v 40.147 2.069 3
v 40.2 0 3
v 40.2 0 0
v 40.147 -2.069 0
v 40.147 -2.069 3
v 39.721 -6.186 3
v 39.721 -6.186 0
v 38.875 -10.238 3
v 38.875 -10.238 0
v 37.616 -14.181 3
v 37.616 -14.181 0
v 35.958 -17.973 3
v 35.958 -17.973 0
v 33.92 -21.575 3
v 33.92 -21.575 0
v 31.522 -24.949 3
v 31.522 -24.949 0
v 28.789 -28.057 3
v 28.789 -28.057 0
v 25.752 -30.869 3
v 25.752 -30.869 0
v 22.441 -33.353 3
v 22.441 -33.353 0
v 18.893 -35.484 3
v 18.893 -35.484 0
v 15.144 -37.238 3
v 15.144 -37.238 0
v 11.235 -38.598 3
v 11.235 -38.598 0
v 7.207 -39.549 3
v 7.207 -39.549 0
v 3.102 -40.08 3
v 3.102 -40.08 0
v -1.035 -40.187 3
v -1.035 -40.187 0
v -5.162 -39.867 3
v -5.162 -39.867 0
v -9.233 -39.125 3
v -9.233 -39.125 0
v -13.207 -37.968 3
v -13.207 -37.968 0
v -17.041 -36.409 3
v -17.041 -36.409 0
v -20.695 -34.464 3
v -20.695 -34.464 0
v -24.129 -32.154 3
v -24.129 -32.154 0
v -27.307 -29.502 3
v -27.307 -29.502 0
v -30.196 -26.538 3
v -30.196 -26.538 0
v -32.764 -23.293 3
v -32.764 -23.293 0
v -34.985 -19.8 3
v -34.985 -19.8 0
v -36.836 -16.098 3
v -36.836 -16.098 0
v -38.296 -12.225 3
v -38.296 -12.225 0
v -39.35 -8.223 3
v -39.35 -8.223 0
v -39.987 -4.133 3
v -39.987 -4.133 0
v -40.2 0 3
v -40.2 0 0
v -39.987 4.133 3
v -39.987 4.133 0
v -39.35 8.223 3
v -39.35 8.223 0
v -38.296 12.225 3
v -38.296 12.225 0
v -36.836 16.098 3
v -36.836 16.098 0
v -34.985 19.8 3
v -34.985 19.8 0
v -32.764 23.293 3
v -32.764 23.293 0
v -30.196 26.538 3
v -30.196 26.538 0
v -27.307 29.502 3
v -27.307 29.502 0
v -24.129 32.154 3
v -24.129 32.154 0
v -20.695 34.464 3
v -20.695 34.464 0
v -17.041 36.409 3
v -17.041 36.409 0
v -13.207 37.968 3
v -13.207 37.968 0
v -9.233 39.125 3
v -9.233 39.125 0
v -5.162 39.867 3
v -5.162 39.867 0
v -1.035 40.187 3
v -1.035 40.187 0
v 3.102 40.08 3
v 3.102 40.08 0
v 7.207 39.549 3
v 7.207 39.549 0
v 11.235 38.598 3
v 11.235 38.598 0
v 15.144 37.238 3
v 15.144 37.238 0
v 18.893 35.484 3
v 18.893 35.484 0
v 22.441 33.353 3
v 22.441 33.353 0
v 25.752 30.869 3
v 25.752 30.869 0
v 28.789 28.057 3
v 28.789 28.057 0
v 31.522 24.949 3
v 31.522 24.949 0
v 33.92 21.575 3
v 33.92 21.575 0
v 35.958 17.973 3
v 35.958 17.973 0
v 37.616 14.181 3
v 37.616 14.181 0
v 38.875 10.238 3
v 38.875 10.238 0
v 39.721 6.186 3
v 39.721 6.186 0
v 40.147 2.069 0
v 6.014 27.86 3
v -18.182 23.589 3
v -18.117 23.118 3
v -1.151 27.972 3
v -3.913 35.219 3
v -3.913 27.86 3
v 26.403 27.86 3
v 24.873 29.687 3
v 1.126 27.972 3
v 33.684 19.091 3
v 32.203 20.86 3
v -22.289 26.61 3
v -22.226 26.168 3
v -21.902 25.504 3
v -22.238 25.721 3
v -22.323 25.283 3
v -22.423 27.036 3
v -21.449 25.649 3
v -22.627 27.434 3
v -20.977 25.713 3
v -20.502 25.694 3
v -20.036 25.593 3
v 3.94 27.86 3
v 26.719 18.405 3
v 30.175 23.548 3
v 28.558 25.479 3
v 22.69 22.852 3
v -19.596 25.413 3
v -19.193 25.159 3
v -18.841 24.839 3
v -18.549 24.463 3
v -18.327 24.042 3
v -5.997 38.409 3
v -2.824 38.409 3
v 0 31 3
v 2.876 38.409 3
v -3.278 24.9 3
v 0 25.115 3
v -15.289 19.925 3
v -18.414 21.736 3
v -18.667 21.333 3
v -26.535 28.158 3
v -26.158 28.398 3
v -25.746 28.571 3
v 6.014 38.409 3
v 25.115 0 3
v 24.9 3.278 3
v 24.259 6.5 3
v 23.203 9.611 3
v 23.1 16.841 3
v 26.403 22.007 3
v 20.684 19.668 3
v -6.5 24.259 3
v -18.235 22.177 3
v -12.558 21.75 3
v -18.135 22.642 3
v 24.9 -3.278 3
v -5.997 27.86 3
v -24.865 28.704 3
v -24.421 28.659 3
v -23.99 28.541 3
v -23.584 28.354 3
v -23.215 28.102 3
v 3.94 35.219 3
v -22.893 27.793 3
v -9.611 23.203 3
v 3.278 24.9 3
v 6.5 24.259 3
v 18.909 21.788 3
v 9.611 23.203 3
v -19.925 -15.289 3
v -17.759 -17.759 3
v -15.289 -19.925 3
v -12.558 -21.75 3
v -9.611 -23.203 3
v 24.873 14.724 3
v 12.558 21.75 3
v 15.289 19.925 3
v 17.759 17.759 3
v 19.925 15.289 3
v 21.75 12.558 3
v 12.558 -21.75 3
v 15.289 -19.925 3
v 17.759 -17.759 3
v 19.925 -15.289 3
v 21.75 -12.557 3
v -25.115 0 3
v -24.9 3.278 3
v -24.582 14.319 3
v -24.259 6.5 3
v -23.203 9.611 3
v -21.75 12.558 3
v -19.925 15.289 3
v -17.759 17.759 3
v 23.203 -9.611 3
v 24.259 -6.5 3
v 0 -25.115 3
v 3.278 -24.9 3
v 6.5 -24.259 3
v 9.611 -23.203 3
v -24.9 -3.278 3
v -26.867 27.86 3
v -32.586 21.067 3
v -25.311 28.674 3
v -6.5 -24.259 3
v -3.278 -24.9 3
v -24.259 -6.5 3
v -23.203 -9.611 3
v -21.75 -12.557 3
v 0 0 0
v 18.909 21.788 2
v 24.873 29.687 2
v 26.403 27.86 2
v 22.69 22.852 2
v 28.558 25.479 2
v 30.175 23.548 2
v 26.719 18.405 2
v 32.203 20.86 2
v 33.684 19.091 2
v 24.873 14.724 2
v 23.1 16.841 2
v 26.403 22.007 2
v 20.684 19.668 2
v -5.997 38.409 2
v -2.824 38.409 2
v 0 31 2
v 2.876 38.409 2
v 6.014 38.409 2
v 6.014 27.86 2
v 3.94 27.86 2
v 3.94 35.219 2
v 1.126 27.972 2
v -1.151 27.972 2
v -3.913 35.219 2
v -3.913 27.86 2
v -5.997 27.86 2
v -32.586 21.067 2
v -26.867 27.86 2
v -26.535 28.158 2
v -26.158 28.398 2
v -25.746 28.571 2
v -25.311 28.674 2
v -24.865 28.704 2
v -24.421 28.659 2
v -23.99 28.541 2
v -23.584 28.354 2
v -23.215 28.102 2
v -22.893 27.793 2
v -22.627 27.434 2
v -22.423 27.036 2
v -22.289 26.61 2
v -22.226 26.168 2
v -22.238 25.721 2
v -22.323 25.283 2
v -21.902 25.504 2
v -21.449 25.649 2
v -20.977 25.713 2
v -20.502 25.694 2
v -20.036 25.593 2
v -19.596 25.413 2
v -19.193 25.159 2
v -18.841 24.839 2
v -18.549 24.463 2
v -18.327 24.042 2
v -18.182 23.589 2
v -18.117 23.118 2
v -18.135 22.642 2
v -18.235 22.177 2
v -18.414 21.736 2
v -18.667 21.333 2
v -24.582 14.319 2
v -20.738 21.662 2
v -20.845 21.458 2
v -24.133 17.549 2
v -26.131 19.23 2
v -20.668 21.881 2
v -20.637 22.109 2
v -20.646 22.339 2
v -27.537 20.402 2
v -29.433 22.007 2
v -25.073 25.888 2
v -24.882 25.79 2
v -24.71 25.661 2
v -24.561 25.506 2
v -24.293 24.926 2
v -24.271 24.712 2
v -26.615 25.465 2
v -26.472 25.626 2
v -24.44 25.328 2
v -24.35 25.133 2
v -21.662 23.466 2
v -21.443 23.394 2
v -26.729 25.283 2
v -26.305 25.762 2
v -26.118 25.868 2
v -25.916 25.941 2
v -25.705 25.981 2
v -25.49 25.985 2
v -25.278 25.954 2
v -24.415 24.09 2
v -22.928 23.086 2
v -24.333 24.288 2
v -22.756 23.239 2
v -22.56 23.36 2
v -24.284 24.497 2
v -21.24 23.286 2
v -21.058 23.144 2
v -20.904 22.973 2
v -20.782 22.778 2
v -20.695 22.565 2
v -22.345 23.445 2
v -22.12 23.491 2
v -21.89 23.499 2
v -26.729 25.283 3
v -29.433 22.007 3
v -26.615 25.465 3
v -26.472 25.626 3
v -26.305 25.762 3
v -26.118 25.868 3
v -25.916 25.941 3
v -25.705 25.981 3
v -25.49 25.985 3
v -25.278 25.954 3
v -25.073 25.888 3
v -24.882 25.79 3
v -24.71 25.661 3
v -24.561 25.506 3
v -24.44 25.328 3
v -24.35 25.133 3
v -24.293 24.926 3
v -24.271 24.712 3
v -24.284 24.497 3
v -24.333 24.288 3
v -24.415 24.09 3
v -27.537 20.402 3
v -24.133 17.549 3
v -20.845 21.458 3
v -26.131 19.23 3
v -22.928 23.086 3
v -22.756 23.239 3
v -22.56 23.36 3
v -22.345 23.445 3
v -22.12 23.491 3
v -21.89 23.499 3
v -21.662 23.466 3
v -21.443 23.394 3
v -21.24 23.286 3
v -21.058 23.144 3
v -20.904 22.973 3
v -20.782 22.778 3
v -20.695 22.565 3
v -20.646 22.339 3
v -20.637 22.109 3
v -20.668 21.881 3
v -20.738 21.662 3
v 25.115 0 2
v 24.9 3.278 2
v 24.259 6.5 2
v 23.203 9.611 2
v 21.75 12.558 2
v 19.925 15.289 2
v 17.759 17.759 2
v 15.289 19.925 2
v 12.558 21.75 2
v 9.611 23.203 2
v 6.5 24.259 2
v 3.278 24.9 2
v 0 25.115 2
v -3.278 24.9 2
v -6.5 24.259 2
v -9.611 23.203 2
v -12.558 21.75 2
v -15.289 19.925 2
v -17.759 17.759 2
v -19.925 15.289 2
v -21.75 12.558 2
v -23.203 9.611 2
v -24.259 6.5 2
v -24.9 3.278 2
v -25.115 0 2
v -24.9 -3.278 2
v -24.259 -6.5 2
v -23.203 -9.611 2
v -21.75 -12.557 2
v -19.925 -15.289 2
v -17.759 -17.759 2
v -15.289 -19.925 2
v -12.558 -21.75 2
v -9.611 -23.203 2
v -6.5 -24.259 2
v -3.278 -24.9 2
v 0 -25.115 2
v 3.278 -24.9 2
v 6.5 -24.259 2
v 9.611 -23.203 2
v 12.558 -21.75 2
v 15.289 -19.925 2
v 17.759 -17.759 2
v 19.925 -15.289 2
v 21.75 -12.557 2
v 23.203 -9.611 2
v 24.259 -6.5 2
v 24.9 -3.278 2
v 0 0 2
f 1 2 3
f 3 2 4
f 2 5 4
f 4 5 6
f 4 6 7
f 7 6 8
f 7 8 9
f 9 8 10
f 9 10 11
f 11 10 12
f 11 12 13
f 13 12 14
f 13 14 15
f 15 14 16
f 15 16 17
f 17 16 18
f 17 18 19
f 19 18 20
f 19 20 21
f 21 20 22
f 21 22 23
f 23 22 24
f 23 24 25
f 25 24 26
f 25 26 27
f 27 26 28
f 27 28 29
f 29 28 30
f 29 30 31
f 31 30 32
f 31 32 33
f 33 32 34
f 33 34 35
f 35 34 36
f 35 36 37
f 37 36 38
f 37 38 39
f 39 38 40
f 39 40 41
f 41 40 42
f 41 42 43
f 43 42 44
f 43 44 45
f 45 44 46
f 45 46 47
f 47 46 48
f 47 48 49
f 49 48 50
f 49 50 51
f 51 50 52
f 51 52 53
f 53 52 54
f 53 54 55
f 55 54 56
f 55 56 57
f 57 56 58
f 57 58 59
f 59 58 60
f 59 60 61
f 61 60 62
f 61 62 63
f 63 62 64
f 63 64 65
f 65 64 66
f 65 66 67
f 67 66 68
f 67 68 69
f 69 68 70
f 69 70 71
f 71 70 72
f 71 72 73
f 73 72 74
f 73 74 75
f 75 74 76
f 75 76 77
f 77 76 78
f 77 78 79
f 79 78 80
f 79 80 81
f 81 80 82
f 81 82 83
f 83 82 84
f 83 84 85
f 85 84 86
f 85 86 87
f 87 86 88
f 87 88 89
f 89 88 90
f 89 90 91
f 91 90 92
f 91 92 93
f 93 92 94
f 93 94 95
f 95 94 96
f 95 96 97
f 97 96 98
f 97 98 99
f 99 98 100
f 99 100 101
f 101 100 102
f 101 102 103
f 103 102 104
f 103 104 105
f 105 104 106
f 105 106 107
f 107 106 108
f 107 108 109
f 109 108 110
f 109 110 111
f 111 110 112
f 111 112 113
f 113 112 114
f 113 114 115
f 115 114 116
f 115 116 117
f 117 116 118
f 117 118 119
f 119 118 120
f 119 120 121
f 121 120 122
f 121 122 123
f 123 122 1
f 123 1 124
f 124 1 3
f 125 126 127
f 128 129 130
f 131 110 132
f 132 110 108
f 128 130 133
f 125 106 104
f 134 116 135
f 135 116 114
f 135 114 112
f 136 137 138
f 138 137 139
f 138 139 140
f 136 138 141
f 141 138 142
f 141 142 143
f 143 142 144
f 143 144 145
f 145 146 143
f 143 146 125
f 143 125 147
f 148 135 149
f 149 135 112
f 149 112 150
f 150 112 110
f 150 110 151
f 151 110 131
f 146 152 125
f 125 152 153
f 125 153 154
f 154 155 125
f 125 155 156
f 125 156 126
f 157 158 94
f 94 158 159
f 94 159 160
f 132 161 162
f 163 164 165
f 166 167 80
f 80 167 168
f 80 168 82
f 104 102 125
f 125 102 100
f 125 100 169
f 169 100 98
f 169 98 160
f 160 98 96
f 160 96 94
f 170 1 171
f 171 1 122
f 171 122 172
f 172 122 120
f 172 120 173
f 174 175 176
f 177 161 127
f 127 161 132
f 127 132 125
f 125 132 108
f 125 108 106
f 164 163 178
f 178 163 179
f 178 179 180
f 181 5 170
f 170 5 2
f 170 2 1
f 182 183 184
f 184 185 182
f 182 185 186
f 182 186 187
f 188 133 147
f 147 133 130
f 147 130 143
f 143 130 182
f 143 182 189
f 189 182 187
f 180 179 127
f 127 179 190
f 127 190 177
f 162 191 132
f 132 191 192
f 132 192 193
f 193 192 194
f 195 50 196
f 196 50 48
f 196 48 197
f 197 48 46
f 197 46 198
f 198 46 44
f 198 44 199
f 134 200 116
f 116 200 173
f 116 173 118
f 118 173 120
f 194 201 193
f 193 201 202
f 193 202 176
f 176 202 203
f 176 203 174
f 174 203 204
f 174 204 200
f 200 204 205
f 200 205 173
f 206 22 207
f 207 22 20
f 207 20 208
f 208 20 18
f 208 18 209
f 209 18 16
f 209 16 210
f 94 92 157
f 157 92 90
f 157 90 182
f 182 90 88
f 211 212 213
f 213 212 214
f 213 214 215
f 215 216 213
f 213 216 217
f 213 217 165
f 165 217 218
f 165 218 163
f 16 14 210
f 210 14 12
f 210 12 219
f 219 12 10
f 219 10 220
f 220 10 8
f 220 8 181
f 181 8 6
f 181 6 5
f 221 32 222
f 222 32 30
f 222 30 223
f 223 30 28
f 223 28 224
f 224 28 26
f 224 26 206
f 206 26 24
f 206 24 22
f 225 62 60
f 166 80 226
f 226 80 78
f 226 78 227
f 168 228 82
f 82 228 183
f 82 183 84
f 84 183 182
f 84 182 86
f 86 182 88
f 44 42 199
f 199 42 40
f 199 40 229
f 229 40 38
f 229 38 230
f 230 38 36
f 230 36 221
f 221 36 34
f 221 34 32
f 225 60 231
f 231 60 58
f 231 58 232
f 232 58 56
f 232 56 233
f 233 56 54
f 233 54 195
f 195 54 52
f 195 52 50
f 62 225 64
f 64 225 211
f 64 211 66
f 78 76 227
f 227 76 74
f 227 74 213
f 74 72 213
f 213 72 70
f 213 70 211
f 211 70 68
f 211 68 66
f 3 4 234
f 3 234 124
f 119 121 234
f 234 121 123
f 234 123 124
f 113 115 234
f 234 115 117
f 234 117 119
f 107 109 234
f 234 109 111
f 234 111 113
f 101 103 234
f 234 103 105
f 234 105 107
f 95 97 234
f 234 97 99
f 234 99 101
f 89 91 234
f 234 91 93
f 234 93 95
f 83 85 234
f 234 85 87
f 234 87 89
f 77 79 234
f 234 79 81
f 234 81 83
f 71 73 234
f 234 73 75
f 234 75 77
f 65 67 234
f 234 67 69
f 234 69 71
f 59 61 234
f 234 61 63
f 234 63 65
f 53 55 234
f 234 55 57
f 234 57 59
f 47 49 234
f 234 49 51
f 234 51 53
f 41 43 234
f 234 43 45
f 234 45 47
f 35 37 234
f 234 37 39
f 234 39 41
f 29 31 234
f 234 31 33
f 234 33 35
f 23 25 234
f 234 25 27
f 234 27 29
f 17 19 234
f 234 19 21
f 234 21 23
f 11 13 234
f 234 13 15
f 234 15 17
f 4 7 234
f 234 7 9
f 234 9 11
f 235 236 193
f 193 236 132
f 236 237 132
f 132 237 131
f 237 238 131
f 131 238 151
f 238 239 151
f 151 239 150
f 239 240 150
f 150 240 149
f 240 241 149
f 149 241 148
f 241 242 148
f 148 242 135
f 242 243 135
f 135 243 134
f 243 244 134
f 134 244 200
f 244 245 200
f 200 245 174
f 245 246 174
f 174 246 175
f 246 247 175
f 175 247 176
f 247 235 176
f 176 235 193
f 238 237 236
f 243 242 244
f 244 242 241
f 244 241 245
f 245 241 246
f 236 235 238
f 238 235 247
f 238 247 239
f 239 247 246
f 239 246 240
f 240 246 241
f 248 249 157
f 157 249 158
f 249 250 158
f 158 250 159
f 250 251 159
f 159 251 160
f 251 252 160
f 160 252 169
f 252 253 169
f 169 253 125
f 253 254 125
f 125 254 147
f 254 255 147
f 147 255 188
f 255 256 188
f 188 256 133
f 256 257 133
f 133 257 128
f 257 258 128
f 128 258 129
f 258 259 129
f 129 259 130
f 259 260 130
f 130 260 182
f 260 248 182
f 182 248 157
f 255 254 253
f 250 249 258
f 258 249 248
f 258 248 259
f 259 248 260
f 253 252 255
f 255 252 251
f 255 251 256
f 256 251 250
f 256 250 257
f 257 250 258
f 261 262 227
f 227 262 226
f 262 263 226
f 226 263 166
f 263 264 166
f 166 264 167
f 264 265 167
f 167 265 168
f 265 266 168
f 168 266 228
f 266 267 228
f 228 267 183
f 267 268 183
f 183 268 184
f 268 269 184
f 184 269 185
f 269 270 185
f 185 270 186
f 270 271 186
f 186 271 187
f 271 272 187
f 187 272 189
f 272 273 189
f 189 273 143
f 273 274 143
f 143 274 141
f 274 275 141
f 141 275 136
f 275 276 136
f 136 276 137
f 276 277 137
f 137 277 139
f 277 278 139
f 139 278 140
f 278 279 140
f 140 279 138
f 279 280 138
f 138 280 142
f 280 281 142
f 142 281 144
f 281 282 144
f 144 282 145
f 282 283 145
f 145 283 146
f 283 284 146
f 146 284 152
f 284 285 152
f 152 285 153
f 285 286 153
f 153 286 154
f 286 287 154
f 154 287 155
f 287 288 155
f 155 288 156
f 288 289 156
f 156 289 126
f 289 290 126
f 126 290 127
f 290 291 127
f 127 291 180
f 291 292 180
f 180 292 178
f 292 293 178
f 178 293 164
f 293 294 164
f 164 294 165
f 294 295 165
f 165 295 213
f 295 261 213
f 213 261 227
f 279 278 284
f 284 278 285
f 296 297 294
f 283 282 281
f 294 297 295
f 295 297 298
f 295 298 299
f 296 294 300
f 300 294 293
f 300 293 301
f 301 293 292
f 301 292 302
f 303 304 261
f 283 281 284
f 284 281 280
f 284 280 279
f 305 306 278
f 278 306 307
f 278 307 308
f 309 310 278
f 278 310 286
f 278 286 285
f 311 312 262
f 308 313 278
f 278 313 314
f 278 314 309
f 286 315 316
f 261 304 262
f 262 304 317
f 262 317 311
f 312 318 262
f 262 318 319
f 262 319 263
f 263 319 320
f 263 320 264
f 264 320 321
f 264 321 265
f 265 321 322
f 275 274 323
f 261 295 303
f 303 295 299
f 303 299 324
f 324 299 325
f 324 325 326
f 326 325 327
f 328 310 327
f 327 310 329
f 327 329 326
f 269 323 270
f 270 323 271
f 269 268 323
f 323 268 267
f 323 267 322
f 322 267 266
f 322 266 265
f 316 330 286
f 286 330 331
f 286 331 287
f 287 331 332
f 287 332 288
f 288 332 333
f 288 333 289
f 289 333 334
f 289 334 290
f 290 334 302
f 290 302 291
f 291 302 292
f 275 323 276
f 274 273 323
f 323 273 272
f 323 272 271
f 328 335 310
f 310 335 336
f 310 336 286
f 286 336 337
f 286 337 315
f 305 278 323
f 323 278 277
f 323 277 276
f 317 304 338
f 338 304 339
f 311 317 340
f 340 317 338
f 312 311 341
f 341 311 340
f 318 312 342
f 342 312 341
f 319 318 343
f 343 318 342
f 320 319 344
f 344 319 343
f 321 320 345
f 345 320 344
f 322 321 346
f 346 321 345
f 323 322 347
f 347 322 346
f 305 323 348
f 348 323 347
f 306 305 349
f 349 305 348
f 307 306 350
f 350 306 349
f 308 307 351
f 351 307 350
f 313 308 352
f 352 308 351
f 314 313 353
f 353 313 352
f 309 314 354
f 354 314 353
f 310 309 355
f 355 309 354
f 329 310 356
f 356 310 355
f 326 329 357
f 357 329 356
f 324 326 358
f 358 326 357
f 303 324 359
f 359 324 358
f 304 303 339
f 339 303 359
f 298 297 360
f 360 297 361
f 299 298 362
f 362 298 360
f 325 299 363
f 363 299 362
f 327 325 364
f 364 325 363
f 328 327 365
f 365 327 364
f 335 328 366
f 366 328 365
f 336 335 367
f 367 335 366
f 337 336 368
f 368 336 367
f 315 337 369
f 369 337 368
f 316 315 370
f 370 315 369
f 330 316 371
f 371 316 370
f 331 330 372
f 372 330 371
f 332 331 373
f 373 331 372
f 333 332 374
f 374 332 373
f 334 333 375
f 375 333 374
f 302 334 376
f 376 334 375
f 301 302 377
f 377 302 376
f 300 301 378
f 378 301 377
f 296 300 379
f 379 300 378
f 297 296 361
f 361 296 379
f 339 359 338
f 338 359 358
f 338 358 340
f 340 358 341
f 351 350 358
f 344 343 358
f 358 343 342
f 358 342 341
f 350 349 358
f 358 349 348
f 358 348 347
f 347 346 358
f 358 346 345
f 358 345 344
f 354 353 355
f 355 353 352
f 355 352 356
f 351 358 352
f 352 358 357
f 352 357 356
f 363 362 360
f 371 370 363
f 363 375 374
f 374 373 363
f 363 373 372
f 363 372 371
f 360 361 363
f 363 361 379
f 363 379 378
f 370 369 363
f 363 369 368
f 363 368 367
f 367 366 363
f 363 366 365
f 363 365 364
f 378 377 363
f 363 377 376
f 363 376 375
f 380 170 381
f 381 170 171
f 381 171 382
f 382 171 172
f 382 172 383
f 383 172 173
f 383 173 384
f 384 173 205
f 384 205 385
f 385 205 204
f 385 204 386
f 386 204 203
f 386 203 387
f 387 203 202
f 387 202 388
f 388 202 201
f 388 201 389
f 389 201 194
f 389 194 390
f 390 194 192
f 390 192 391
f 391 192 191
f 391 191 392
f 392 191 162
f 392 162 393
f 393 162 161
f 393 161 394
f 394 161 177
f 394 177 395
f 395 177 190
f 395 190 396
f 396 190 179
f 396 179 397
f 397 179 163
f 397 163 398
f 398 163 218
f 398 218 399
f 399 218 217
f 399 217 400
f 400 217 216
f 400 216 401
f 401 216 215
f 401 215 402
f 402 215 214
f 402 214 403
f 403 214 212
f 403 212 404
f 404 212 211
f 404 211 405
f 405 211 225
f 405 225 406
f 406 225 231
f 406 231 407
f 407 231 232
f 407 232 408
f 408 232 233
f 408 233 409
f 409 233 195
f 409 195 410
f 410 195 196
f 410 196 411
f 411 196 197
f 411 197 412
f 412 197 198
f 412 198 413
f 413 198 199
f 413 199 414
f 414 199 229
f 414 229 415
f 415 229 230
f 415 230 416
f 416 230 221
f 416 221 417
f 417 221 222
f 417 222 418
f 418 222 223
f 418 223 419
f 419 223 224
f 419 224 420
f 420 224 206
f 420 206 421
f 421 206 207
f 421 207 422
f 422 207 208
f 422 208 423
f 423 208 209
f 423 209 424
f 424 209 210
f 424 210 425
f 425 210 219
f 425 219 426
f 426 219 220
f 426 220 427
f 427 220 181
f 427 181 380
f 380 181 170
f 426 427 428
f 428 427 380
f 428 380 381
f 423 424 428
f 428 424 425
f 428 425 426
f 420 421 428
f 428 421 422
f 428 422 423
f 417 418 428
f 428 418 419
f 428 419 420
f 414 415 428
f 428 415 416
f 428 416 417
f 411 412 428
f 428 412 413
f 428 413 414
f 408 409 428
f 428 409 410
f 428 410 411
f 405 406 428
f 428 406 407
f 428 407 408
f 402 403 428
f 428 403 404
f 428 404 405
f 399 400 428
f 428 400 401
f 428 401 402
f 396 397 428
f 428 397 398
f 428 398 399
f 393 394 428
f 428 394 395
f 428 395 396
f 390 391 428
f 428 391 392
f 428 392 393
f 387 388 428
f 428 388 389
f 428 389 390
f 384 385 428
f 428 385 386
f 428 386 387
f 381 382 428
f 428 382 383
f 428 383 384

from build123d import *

# Parameters (mm, degrees)
SKETCH_1_R          = 40.2
EXTRUDE_1_DEPTH     = 3
CUT_EXTRUDE_2_DEPTH = 1
CUT_EXTRUDE_START   = -3
SKETCH_2_R          = 25.115
CUT_EXTRUDE_1_DEPTH = 1


with BuildPart() as part:
    # 草图1 → 凸台-拉伸1 (new body)
    with BuildSketch(Plane.XY):
        Circle(SKETCH_1_R)
    extrude(amount=EXTRUDE_1_DEPTH)

    # 草图4 → 切除-拉伸2 (cut)
    # profile 1 of 3: a face of its own
    with BuildSketch(Plane.XY.offset(3)):
        Polygon((-32.5857633, 21.06745862), (-24.581820031, 14.318573463), (-18.667207086, 21.333098879), (-18.41413244, 21.736159792), (-18.234803522, 22.177001467), (-18.13465246, 22.642257204), (-18.116731012, 23.117843142), (-18.181557978, 23.589339724), (-18.32718786, 24.042434206), (-18.549203241, 24.463393679), (-18.840867365, 24.839477053), (-19.193337763, 25.159270754), (-19.595940912, 25.413070192), (-20.036454523, 25.593200197), (-20.501542414, 25.694198122), (-20.977090204, 25.712981691), (-21.448693598, 25.649001589), (-21.902055109, 25.504195681), (-22.323418939, 25.282943239), (-22.237939203, 25.721435061), (-22.226228083, 26.168029299), (-22.288621271, 26.610396853), (-22.423394525, 27.03633069), (-22.626817072, 27.434081545), (-22.893288935, 27.792647829), (-23.215455377, 28.102157106), (-23.584405268, 28.354064455), (-23.989976251, 28.541396608), (-24.420968378, 28.659011354), (-24.865479792, 28.703643312), (-25.311242426, 28.67405652), (-25.745965326, 28.571090212), (-26.157632196, 28.397567263), (-26.534890497, 28.158278933), (-26.867333734, 27.859832277), align=None)
        Polygon((-29.433129633, 22.00672864), (-27.536842846, 20.401686478), (-24.415383661, 24.089553347), (-24.332948053, 24.288070192), (-24.284310663, 24.497451296), (-24.270799005, 24.71198987), (-24.292779291, 24.925811281), (-24.349656427, 25.133101931), (-24.439881647, 25.328216066), (-24.560983026, 25.505813112), (-24.709672296, 25.661040773), (-24.88187536, 25.789687624), (-25.07290777, 25.888244143), (-25.277558649, 25.953994265), (-25.490235651, 25.985183229), (-25.705155695, 25.980926027), (-25.916436518, 25.941359987), (-26.118325556, 25.867568483), (-26.305306757, 25.761535158), (-26.472298944, 25.626189699), (-26.614724481, 25.465194216), (-26.728715265, 25.282943239), align=None, mode=Mode.SUBTRACT)
        Polygon((-22.927964533, 23.086165895), (-26.131158197, 19.230041018), (-24.13251623, 17.548820009), (-20.844605768, 21.457534304), (-20.737939203, 21.661635866), (-20.668130243, 21.881103029), (-20.637284601, 22.109313479), (-20.646325434, 22.339431276), (-20.694978083, 22.564528933), (-20.781777704, 22.777846804), (-20.904122675, 22.972960939), (-21.058335626, 23.143996706), (-21.239770258, 23.285842409), (-21.442979181, 23.39419507), (-21.661851251, 23.465835085), (-21.889809931, 23.498580446), (-22.119996393, 23.491454592), (-22.345490778, 23.444686403), (-22.559518183, 23.359664431), (-22.755639398, 23.23895215), align=None, mode=Mode.SUBTRACT)
    # profile 2 of 3: a face of its own
    with BuildSketch(Plane.XY.offset(3)):
        Polygon((-5.996850336, 38.408904543), (-5.996850336, 27.859832277), (-3.91276153, 27.859832277), (-3.91276153, 35.218716958), (-1.150554499, 27.972180703), (1.12643067, 27.972180703), (3.939782293, 35.218721034), (3.939782293, 27.859832277), (6.014273321, 27.859832277), (6.014273321, 38.408905525), (2.876387274, 38.408905525), (0, 31), (-2.824097956, 38.408904543), align=None)
    # profile 3 of 3: a face of its own
    with BuildSketch(Plane.XY.offset(3)):
        Polygon((24.872824347, 29.687392702), (26.402881435, 27.859829995), (22.690074891, 22.851733117), (28.558242873, 25.479165769), (30.175307816, 23.547677324), (26.718580446, 18.404779635), (32.2027141, 20.860263506), (33.683638635, 19.091386728), (24.872830811, 14.723630109), (23.099783575, 16.841430178), (26.402884161, 22.00672864), (20.684073126, 19.667968264), (18.909277594, 21.787856569), align=None)
    extrude(amount=-CUT_EXTRUDE_2_DEPTH, mode=Mode.SUBTRACT)

    # 草图2 → 切除-拉伸1 (cut)
    with BuildSketch(Plane(origin=(0, 0, 0), x_dir=(-1, 0, 0), z_dir=(0, 0, -1)).offset(CUT_EXTRUDE_START)):
        with Locations(Location((0, 0, 0), (0, 0, 180))):
            Circle(SKETCH_2_R)
    extrude(amount=CUT_EXTRUDE_1_DEPTH, mode=Mode.SUBTRACT)


solid = part.part
